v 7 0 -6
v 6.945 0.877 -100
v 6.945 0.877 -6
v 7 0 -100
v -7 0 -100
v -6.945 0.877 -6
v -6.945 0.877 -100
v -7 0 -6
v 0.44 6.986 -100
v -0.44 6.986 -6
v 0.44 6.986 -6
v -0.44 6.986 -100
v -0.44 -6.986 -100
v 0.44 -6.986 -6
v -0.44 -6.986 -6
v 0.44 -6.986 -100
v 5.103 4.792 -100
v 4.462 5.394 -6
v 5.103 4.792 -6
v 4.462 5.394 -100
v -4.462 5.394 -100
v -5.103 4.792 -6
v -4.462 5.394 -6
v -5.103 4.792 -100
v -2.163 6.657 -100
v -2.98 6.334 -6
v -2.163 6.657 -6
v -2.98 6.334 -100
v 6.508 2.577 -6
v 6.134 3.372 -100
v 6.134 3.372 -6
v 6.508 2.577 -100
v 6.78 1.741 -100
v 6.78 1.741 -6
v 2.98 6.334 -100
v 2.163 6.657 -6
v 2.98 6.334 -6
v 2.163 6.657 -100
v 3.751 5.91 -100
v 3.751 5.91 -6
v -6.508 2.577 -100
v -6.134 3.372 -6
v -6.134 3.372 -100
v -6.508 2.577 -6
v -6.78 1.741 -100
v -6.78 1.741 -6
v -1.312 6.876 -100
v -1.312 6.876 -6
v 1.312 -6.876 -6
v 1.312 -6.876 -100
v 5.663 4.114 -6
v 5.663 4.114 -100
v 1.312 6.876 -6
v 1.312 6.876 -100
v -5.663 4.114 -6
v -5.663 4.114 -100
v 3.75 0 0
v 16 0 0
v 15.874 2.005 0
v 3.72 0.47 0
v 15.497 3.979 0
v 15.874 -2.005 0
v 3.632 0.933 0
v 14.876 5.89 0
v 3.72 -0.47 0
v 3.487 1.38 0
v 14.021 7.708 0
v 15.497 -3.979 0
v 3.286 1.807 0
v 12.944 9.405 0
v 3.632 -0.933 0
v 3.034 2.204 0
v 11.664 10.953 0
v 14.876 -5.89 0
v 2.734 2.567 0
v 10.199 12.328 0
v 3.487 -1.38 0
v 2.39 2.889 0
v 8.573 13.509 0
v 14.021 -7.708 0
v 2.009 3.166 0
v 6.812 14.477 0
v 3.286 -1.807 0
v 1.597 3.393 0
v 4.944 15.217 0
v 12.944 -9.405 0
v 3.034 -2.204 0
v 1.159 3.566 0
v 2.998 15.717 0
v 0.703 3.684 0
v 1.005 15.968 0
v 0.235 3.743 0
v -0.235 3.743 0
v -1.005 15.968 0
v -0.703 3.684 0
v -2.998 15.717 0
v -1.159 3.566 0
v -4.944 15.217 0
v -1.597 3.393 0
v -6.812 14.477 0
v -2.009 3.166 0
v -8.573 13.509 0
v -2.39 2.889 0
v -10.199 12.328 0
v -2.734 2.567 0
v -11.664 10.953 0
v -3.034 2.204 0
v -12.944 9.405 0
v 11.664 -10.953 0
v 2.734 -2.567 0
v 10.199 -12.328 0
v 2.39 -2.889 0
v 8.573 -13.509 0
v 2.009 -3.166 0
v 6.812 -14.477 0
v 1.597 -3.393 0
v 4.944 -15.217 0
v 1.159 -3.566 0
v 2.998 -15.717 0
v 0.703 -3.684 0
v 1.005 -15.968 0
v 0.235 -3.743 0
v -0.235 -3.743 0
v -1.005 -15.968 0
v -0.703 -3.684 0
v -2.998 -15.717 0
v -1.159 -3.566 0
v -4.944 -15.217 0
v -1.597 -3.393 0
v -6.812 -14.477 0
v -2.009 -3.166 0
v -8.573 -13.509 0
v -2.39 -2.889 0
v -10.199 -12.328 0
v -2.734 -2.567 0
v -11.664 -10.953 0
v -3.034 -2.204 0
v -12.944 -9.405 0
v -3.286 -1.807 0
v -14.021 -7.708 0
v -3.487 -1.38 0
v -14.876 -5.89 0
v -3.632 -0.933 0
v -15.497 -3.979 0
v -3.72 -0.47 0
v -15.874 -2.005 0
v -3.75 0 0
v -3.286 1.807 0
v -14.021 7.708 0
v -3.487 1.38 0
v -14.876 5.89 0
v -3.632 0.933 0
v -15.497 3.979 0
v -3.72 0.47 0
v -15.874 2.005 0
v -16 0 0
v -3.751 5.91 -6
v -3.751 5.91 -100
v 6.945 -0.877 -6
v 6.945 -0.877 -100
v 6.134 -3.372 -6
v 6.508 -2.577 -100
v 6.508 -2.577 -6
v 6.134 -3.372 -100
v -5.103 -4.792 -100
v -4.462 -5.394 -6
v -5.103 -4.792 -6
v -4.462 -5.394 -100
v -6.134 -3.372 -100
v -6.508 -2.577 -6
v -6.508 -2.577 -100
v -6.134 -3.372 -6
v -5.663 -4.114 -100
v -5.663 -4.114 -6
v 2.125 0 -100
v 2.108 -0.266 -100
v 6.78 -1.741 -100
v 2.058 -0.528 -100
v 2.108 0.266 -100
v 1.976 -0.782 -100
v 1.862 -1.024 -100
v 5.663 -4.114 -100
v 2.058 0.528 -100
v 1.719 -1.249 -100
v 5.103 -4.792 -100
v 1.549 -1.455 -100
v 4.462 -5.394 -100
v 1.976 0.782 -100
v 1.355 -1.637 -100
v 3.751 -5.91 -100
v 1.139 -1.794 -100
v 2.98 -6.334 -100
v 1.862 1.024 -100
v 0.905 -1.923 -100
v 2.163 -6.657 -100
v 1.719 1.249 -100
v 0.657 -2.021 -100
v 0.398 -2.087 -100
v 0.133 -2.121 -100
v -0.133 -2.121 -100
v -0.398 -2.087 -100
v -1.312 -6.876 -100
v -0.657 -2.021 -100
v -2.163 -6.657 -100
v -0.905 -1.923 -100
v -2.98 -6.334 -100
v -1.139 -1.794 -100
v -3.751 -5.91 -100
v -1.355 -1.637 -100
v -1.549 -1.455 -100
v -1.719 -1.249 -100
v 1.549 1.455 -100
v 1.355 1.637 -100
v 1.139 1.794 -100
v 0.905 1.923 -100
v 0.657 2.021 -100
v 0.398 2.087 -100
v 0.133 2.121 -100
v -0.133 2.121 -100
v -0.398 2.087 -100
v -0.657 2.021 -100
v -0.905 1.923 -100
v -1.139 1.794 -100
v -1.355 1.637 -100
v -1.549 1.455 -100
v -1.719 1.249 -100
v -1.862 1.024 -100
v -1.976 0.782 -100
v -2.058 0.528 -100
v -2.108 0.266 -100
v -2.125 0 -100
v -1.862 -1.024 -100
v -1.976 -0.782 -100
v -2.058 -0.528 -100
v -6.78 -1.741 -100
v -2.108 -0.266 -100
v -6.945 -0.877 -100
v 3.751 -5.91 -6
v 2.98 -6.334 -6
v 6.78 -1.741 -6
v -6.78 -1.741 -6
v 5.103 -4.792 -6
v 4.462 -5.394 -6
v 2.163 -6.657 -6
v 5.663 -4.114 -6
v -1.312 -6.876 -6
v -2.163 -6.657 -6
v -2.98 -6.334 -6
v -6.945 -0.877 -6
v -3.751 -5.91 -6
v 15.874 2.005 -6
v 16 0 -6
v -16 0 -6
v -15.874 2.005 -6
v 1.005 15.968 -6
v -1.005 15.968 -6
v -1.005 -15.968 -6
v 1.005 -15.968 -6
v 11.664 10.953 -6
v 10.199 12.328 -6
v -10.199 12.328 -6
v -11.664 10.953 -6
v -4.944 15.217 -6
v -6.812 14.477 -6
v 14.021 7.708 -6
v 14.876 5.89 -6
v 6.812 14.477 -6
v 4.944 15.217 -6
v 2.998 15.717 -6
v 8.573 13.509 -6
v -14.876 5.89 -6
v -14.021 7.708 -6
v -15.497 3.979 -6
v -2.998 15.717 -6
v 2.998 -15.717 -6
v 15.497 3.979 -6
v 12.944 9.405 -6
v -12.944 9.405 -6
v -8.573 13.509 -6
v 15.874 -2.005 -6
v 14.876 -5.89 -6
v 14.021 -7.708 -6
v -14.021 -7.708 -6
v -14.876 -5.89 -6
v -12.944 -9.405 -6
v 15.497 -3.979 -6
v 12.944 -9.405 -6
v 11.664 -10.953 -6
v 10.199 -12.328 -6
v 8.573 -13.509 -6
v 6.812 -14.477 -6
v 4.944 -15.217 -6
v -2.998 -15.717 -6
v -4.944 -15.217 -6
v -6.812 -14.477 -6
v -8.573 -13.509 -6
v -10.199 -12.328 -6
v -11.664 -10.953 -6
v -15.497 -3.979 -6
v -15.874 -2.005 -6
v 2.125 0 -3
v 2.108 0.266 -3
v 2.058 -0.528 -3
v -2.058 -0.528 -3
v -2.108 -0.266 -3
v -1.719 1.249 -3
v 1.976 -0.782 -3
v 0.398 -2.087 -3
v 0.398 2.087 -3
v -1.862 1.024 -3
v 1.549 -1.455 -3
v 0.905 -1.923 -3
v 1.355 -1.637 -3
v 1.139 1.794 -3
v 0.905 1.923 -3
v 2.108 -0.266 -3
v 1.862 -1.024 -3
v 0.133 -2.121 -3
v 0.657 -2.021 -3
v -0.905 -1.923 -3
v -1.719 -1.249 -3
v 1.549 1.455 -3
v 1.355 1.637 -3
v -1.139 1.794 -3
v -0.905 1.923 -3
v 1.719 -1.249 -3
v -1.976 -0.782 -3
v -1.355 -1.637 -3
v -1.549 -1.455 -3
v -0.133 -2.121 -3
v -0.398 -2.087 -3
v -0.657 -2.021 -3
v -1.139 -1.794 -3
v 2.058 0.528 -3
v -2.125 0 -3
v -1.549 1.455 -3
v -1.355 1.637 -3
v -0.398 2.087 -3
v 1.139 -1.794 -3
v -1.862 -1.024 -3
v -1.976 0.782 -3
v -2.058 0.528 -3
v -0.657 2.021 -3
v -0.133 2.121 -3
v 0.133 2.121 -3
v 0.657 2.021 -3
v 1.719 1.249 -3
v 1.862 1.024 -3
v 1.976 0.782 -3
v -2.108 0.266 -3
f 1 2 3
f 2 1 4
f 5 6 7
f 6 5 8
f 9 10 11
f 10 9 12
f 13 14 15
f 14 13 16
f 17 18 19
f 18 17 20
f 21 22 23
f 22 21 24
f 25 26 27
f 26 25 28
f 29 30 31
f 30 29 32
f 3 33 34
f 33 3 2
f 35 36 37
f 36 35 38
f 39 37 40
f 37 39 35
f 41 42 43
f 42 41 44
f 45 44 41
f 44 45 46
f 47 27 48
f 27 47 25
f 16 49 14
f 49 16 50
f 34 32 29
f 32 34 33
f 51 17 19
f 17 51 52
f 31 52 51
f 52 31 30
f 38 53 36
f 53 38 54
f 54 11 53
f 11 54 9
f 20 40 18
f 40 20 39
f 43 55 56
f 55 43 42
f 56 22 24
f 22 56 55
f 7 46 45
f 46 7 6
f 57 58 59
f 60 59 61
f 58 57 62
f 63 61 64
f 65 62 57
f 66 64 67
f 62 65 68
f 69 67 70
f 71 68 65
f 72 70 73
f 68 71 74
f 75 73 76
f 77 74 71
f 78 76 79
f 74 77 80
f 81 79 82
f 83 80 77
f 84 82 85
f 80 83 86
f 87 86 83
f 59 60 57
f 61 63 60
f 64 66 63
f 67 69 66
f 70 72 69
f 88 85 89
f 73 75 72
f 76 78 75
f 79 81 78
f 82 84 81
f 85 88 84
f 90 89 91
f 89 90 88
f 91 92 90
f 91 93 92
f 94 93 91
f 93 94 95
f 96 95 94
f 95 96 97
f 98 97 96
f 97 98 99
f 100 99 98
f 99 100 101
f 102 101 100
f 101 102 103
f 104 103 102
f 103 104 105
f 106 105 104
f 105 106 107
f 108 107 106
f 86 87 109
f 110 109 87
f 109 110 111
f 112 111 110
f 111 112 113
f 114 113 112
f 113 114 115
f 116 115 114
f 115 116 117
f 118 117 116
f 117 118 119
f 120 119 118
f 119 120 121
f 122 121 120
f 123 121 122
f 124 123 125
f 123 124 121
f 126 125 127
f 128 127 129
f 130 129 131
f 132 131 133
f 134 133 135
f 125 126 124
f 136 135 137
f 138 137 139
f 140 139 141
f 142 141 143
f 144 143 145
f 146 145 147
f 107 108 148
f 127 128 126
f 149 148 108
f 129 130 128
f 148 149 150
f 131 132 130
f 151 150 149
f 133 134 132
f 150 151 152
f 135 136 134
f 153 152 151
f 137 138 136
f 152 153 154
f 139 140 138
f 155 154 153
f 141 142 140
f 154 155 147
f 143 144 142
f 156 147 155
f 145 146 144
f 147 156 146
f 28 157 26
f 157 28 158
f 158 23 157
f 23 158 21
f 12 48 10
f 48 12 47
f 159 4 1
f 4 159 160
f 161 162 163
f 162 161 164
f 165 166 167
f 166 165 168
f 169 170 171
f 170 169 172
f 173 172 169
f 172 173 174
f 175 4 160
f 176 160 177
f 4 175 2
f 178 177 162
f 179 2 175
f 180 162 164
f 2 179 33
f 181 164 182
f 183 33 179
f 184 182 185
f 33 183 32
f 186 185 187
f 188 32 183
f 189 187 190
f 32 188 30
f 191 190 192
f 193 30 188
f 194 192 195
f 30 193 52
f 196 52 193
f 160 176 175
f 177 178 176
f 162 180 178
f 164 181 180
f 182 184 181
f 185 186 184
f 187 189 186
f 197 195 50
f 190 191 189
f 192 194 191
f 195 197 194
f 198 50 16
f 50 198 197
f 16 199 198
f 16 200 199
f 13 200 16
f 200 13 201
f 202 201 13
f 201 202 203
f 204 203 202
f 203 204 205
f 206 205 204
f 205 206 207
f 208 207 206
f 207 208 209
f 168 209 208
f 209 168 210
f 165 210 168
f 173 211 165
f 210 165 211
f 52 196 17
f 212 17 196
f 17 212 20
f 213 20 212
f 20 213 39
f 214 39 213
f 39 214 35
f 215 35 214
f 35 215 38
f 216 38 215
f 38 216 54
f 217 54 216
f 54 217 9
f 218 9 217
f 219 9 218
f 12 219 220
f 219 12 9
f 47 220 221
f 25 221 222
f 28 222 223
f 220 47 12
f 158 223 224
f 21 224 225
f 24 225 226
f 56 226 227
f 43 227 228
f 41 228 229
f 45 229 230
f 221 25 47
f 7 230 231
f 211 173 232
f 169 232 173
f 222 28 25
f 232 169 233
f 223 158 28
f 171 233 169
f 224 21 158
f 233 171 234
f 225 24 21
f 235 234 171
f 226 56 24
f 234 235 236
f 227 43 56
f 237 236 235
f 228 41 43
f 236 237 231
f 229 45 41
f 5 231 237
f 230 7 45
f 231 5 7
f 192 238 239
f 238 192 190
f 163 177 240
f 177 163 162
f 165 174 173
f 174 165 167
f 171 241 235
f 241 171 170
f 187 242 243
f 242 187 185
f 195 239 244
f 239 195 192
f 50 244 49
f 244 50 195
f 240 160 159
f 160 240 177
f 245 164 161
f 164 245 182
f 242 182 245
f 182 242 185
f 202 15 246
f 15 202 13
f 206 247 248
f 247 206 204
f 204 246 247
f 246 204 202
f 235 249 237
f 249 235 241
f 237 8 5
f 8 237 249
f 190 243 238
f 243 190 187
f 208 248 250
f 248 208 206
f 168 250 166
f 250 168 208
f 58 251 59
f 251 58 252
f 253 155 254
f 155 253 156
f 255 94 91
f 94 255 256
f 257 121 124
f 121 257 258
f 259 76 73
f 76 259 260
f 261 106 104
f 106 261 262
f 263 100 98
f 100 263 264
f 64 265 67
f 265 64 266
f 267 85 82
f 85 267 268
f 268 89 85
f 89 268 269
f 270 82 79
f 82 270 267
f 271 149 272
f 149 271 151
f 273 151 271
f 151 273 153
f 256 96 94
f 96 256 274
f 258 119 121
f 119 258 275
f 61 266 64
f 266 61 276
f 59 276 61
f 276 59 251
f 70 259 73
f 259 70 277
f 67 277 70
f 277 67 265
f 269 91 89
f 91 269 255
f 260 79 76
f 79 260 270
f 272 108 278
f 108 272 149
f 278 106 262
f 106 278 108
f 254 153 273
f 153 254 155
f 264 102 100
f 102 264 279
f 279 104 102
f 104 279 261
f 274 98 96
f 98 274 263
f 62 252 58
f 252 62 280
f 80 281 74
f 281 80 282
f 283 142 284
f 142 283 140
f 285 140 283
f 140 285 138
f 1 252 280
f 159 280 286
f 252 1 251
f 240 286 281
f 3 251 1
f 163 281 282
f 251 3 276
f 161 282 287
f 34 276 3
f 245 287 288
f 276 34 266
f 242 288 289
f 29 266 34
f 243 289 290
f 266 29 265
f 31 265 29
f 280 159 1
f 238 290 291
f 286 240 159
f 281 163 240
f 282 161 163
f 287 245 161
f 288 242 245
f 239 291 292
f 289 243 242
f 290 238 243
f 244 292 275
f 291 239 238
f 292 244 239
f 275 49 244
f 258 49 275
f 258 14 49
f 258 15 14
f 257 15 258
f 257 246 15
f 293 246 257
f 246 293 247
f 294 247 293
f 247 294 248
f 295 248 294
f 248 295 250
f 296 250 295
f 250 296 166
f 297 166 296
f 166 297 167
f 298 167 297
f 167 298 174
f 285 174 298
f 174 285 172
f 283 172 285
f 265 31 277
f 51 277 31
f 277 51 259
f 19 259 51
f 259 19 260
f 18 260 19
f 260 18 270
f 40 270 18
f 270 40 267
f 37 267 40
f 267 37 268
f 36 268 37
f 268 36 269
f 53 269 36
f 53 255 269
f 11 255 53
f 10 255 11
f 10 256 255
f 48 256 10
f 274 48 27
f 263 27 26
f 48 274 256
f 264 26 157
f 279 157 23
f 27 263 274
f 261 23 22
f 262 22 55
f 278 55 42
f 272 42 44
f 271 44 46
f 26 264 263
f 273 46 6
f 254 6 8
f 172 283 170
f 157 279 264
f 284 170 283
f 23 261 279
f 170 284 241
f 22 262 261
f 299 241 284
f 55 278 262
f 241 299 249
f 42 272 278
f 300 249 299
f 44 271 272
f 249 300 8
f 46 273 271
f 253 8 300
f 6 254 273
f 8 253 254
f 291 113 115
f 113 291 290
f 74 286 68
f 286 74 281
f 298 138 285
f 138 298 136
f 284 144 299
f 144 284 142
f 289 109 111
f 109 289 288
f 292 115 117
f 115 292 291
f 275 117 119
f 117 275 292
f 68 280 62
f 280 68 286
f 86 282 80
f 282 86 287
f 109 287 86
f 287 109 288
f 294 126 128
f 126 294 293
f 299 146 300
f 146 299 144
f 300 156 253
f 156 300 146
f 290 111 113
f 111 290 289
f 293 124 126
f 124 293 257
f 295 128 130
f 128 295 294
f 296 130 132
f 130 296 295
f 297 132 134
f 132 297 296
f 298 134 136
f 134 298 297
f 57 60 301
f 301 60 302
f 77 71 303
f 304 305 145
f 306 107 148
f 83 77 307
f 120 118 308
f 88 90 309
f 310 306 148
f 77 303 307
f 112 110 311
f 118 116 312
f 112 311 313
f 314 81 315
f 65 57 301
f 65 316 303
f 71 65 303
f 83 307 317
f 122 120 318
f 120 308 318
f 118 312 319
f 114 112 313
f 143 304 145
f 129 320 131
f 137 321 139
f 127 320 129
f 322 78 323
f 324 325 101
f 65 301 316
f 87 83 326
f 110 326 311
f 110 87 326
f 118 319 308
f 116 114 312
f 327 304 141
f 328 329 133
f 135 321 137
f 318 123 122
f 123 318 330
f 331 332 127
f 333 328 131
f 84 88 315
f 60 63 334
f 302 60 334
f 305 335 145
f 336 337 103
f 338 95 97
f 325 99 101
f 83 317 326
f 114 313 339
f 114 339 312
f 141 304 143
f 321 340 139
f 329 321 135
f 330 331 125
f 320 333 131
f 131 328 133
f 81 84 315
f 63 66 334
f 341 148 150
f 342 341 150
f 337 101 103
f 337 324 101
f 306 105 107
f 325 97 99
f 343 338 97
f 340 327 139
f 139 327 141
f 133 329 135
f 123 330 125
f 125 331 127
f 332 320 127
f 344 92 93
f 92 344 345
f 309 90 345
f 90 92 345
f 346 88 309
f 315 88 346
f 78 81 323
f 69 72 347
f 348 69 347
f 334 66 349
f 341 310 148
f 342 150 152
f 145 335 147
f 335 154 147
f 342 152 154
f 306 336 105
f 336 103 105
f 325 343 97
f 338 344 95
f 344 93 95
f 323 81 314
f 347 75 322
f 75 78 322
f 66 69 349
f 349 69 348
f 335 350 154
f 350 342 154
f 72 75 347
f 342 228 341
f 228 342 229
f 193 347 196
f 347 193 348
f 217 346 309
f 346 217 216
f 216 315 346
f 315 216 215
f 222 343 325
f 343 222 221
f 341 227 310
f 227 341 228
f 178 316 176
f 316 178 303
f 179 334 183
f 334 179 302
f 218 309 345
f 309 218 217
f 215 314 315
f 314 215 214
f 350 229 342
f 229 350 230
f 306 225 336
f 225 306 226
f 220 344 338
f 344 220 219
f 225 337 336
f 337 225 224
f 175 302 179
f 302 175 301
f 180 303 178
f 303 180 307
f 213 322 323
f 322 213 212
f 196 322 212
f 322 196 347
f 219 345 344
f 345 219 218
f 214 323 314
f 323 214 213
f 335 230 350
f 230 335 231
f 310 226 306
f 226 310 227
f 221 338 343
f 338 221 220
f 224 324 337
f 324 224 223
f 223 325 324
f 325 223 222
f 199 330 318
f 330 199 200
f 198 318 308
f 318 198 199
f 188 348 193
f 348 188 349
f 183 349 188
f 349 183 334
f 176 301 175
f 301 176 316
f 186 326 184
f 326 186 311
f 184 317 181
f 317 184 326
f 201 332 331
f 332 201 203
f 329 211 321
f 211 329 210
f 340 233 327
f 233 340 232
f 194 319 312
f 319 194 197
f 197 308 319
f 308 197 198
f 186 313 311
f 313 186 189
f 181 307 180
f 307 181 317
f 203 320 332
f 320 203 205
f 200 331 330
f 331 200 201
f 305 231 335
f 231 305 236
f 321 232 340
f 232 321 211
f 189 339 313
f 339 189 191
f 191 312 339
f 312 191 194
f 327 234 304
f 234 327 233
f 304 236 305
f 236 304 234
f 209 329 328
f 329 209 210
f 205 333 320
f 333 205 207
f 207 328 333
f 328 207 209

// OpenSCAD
$fn = 50;


difference() {
	union() {
		translate(v = [0, 0, -100.0000000000]) {
			cylinder(h = 100, r = 7.0000000000);
		}
		translate(v = [0, 0, -6.0000000000]) {
			cylinder(h = 6, r = 16.0000000000);
		}
	}
	union() {
		translate(v = [0, 0, 0]) {
			rotate(a = [0, 0, 0]) {
				difference() {
					union() {
						#translate(v = [0, 0, -100.0000000000]) {
							cylinder(h = 100, r = 2.0000000000);
						}
						#translate(v = [0, 0, -3]) {
							cylinder(h = 3, r = 7.0000000000, r1 = 2.1250000000, r2 = 3.7500000000);
						}
						#translate(v = [0, 0, -100.0000000000]) {
							cylinder(h = 100, r = 2.1250000000);
						}
						#translate(v = [0, 0, -100.0000000000]) {
							cylinder(h = 100, r = 2.0000000000);
						}
					}
					union();
				}
			}
		}
	}
}
